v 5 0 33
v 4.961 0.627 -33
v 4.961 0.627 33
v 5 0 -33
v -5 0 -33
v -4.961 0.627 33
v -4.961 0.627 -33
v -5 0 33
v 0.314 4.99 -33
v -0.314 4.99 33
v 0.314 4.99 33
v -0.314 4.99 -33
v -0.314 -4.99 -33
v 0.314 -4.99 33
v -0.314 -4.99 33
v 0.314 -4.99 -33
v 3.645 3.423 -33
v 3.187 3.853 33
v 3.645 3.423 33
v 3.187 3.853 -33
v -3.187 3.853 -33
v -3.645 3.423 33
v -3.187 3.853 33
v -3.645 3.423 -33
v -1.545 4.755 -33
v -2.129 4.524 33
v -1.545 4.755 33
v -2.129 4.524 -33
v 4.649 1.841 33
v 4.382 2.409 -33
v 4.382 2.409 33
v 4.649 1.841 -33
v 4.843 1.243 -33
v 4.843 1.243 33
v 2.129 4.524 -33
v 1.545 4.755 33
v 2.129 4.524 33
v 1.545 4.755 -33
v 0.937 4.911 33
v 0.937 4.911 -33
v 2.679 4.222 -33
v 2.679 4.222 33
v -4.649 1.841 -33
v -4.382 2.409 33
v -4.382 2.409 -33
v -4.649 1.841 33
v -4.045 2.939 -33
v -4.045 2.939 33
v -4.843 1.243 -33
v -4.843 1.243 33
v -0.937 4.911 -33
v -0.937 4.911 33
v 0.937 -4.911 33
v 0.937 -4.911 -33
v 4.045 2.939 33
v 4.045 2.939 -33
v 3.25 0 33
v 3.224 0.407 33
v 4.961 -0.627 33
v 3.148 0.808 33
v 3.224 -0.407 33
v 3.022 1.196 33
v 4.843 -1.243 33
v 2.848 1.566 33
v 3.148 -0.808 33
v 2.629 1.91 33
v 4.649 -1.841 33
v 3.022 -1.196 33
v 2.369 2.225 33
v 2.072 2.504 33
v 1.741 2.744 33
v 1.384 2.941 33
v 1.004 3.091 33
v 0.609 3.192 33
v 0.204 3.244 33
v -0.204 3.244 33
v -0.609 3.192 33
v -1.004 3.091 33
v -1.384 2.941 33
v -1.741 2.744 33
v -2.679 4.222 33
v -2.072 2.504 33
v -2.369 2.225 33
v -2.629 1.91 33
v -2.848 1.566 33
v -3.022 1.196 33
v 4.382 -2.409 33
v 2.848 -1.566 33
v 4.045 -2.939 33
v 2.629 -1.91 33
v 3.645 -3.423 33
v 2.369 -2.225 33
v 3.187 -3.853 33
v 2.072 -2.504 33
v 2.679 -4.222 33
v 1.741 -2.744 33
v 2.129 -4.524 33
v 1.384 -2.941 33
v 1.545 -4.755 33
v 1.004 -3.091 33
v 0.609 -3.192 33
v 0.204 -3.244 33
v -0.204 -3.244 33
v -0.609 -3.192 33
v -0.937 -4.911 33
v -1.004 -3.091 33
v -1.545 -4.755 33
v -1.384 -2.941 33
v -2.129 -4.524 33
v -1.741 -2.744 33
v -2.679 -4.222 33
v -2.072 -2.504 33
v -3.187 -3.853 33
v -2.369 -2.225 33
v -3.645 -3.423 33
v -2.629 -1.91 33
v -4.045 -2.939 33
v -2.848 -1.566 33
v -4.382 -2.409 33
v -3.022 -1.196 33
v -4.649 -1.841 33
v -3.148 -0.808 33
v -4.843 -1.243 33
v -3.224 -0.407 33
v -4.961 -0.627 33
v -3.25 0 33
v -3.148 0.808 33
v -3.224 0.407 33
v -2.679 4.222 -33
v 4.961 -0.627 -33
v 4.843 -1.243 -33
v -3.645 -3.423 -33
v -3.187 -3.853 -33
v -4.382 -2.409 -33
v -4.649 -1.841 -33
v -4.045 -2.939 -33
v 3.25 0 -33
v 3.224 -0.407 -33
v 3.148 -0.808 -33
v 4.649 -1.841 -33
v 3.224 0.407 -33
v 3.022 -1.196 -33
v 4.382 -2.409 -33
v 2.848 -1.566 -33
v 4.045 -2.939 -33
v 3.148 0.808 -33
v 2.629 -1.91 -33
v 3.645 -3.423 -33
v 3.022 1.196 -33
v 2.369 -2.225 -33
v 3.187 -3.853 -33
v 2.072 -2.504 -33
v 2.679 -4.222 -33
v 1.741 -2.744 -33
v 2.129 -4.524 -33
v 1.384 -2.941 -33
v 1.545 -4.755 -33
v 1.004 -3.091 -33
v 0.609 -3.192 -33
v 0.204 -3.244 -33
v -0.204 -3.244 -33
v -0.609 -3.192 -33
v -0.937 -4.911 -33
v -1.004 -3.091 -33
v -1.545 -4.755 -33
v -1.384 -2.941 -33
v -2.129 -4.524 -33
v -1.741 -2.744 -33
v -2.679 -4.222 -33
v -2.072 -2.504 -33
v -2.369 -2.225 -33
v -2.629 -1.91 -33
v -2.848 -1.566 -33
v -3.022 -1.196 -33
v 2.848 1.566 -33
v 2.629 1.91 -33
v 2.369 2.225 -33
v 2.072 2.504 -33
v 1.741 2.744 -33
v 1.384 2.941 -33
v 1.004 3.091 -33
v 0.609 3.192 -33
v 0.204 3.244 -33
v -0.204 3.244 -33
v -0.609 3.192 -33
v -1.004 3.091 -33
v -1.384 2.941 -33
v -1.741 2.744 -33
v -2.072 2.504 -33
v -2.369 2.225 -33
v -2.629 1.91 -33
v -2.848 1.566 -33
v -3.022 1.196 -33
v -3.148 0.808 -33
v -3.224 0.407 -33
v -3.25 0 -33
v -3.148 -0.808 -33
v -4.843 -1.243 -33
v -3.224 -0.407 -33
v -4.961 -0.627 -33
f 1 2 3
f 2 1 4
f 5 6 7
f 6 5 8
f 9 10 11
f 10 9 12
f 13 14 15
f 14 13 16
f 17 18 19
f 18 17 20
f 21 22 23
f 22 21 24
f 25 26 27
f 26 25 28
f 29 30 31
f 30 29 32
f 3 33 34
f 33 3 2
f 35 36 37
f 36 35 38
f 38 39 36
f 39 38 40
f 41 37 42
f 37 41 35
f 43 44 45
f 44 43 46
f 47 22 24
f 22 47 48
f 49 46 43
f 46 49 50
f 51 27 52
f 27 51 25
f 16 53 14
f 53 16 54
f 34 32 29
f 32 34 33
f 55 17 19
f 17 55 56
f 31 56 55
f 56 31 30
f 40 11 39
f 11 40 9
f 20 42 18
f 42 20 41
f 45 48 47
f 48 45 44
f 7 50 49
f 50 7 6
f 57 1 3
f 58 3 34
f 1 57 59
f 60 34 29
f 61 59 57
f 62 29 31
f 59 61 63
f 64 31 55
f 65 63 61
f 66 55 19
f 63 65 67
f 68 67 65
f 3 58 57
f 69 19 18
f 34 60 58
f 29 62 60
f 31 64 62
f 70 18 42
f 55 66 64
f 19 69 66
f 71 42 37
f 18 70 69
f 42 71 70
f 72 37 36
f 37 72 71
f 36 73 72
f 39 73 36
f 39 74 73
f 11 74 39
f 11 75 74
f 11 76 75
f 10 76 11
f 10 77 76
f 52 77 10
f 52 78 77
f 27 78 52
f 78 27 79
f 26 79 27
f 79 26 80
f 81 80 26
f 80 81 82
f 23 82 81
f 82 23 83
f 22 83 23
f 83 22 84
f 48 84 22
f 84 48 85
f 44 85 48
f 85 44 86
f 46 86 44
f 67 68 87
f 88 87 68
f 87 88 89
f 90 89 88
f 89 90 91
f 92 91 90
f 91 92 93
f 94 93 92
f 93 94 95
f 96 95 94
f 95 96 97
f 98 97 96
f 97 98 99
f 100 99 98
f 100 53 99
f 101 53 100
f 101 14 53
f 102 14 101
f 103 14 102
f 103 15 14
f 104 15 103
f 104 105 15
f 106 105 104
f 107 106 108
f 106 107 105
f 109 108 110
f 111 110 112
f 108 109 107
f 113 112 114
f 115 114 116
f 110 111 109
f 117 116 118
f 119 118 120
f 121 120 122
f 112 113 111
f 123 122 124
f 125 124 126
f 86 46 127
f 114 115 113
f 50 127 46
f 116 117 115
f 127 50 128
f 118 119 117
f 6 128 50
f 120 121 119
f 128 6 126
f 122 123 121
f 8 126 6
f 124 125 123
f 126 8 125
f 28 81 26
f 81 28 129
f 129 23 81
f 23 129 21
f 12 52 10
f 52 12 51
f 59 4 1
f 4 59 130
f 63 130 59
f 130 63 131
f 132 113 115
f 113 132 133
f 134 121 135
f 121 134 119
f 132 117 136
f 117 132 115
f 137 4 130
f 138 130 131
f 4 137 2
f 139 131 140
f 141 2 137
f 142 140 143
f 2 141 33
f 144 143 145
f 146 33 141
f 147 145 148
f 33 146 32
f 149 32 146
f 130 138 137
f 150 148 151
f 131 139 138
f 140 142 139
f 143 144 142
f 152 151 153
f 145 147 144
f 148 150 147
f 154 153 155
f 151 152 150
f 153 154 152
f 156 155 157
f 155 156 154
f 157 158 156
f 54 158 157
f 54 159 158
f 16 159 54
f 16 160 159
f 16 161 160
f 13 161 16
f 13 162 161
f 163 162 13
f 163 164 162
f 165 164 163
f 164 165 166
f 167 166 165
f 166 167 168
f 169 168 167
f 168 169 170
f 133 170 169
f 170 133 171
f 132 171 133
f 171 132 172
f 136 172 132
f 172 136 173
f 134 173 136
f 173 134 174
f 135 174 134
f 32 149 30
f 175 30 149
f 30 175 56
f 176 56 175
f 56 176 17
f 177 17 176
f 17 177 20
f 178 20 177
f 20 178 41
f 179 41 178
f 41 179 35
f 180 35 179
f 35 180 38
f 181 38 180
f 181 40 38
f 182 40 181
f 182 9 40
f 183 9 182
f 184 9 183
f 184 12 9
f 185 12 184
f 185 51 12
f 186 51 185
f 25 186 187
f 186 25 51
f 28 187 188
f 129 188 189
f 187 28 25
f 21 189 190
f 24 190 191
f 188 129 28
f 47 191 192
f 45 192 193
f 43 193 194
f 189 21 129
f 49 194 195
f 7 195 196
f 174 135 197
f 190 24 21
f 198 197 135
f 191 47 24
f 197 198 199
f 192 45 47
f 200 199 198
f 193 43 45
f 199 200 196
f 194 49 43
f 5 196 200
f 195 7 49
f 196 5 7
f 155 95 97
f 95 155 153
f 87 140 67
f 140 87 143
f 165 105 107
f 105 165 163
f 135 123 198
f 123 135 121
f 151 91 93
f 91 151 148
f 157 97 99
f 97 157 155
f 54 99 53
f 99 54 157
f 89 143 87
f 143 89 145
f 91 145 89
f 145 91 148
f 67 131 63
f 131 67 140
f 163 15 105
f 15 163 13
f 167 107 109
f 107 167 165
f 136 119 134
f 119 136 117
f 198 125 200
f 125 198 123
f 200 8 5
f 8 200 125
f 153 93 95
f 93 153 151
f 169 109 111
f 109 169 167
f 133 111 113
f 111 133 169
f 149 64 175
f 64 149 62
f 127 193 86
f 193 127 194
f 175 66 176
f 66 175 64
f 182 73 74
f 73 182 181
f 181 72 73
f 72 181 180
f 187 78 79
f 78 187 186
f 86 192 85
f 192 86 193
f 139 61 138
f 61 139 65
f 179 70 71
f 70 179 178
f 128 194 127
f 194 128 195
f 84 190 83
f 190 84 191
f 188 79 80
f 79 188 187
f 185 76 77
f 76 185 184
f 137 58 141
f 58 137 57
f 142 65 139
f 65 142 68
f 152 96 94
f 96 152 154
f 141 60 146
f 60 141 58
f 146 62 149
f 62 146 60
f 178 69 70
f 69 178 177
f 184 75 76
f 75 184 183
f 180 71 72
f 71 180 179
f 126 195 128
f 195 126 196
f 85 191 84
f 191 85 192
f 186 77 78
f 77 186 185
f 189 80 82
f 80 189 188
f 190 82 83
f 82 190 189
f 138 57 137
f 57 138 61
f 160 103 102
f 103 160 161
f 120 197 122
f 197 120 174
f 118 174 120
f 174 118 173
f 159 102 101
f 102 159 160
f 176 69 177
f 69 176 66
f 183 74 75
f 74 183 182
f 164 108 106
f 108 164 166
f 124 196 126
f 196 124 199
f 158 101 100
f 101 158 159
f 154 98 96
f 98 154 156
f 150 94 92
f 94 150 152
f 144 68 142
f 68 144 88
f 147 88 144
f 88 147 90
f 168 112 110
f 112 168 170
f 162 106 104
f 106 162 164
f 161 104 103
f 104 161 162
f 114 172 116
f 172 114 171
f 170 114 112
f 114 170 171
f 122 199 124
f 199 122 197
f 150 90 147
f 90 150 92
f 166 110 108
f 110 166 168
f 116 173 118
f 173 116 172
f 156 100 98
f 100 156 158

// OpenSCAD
$fn = 50;


difference() {
	union() {
		translate(v = [0, 0, -33.0000000000]) {
			cylinder(h = 66, r = 5.0000000000);
		}
	}
	union() {
		translate(v = [0, 0, -100.0000000000]) {
			cylinder(h = 200, r = 3.2500000000);
		}
	}
}
